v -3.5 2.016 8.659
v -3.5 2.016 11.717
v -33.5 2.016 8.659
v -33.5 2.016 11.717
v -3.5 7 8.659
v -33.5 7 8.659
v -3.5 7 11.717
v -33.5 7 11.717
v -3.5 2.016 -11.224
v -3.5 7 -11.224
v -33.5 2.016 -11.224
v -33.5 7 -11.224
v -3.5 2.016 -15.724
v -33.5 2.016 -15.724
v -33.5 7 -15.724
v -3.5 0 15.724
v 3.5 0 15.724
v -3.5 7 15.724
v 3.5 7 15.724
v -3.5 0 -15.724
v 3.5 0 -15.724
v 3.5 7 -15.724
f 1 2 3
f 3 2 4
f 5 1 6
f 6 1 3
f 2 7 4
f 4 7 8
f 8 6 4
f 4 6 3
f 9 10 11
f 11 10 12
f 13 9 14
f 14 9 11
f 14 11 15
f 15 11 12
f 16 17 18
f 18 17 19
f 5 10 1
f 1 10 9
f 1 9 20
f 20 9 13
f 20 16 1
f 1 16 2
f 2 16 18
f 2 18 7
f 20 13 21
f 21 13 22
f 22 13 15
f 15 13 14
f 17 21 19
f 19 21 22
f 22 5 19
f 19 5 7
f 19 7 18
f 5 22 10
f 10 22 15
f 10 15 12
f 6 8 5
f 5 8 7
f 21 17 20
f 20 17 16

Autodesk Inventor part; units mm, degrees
ref_plane "YZ Plane" through (0, 0, 0) normal (1, 0, 0) x (0, 1, 0)
ref_plane "XZ Plane" through (0, 0, 0) normal (0, 1, 0) x (-1, 0, 0)
ref_plane "XY Plane" through (0, 0, 0) normal (0, 0, 1) x (1, 0, 0)
sketch "Sketch1" plane through (0, 0, 0) normal (0, 1, 0) x (-1, 0, 0)
  line L0 (-3.5, 15.724) -> (3.5, 15.724)
  line L1 (3.5, 15.724) -> (3.5, -15.724)
  line L2 (3.5, -15.724) -> (-3.5, -15.724)
  line L3 (-3.5, -15.724) -> (-3.5, 15.724)
  line L4 (-3.5, 15.724) -> (3.5, -15.724) construction
  line L5 (3.5, 15.724) -> (-3.5, -15.724) construction
  line L6 (3.5, 15.724) -> (3.5, 11.724)
  point P0 (0, 0)
  dimension "d0" = 7
  dimension "d1" = 4
extrude "Extrusion1" add sketch "Sketch1" along normal blind 7
sketch "Sketch2" plane through (-3.5, 0, -15.724) normal (-1, 0, 0) x (0, 0, 1)
  line L0 (31.4479, 7) -> (0, 7) projected
  line L1 (31.4479, 7) -> (27.4406, 7)
  line L2 (0, 7) -> (4.5, 7)
  line L3 (4.5, 7) -> (4.5, 2.0159)
  line L4 (4.5, 2.0159) -> (0, 2.0159)
  line L5 (0, 2.0159) -> (0, 7)
  line L6 (27.4406, 7) -> (24.383, 7)
  line L7 (24.383, 7) -> (24.383, 2.0159)
  line L8 (24.383, 2.0159) -> (27.4406, 2.0159)
  line L9 (27.4406, 2.0159) -> (27.4406, 7)
  point P0 (15.724, 0)
  point P1 (4.5, 7)
  dimension "d4" = 4.5
extrude "Extrusion2" add sketch "Sketch2" along normal blind 30
properties part number "JoystickHållare"
